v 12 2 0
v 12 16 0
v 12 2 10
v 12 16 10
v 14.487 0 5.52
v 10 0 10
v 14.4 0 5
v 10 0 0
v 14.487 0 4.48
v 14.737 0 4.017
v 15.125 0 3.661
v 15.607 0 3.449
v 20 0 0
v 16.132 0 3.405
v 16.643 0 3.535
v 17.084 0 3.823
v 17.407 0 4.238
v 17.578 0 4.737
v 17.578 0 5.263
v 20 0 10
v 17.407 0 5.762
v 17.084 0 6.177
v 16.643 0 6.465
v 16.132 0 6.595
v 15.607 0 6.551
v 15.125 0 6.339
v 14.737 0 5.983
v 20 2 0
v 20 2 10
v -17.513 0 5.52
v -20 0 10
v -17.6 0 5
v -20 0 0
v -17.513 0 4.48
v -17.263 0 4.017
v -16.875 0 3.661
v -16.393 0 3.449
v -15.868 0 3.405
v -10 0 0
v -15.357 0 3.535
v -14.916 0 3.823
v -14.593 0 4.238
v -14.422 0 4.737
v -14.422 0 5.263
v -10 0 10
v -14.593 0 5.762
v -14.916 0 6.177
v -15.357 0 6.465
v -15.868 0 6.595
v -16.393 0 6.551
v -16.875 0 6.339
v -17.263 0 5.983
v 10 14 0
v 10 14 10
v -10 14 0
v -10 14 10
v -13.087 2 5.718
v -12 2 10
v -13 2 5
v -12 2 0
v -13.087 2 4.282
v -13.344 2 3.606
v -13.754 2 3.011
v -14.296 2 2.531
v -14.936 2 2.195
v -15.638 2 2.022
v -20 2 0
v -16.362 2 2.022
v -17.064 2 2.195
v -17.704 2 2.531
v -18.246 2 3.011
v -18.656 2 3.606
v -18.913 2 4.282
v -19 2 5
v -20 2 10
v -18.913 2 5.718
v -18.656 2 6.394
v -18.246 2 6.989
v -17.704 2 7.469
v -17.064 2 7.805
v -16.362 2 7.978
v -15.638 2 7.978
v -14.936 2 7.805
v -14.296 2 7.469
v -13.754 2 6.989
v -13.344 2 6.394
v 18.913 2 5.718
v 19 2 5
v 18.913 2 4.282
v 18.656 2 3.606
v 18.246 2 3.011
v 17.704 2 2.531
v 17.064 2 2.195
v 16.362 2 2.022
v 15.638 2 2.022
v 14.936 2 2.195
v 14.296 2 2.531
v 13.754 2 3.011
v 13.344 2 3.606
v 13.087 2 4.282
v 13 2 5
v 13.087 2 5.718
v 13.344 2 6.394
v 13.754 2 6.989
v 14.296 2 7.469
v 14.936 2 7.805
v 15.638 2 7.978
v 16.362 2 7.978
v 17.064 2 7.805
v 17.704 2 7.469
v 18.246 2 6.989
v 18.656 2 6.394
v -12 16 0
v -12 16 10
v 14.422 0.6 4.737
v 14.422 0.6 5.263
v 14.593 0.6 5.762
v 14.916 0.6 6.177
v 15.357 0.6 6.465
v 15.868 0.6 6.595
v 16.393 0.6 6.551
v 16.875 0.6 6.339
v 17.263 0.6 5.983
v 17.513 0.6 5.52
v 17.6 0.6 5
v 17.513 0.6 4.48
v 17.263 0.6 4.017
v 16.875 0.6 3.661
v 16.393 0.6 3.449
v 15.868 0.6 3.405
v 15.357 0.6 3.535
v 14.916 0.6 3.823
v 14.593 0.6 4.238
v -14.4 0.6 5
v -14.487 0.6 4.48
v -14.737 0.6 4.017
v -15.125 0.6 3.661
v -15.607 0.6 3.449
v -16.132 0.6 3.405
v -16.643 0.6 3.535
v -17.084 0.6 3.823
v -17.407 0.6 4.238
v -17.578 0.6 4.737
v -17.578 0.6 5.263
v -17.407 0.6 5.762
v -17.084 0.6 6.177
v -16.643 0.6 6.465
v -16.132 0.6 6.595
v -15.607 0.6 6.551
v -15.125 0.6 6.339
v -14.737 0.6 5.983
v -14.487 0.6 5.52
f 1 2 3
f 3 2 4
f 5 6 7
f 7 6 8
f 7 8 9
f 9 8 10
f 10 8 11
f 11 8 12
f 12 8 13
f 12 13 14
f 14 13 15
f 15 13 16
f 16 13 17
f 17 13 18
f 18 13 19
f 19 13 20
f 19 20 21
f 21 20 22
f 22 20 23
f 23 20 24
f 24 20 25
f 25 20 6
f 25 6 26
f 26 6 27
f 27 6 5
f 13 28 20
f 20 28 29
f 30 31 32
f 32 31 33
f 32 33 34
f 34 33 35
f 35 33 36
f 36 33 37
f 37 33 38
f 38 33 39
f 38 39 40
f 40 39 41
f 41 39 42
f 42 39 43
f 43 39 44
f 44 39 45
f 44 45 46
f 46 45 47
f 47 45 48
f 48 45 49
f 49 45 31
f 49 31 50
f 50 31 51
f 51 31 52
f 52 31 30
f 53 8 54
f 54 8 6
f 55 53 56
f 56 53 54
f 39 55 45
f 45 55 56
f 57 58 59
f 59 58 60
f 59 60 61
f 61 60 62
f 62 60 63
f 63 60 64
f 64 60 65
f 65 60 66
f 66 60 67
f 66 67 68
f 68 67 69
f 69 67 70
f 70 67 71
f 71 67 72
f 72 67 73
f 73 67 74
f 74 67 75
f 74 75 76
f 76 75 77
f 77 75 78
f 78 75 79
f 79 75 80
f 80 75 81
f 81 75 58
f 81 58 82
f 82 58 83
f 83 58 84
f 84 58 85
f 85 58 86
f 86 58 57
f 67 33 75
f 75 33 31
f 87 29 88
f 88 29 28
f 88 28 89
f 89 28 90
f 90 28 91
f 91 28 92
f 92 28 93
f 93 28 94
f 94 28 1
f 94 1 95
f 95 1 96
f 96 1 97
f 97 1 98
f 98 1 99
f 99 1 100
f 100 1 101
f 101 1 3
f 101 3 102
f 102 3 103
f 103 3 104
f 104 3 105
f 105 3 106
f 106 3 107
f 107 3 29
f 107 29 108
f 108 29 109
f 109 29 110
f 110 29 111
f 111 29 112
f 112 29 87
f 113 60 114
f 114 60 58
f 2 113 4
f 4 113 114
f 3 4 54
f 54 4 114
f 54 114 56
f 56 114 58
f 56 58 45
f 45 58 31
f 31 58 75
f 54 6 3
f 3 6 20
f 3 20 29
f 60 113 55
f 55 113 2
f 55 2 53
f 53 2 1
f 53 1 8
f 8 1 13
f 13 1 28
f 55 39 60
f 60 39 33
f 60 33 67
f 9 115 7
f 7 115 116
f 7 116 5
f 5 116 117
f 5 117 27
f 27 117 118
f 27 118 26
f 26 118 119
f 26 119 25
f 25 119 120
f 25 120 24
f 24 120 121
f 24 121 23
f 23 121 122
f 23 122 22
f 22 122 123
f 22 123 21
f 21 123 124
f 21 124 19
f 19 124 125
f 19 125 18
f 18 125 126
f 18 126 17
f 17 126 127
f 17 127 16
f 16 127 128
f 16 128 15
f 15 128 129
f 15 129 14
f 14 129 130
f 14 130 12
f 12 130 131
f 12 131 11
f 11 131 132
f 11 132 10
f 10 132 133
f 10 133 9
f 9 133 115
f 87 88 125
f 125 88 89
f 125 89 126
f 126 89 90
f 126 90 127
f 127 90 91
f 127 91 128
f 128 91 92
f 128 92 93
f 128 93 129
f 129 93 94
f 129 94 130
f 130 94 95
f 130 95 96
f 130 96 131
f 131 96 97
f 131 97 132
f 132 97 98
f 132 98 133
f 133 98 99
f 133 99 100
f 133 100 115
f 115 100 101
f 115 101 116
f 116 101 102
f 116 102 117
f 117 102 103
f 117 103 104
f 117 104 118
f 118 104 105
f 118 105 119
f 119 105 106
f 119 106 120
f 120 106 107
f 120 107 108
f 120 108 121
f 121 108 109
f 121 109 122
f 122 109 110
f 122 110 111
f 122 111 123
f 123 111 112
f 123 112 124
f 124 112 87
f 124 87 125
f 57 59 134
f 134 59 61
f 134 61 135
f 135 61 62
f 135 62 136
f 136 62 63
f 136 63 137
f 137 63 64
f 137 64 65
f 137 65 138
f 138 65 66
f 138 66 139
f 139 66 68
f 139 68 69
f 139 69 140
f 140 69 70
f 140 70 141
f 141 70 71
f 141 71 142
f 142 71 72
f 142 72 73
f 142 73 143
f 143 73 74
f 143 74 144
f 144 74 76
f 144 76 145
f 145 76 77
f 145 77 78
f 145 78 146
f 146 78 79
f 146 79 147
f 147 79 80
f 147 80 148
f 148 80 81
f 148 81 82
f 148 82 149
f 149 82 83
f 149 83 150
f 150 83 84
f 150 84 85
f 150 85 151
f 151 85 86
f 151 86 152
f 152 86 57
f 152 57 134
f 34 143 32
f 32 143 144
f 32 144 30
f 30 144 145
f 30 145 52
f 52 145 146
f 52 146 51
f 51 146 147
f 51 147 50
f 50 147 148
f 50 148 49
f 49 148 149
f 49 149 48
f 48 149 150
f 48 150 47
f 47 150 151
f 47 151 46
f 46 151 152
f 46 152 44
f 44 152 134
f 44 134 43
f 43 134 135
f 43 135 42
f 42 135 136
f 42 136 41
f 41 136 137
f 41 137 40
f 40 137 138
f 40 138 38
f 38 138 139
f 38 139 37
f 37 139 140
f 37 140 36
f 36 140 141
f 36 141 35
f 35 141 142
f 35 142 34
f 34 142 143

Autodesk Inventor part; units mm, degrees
ref_plane "YZ Plane" through (0, 0, 0) normal (1, 0, 0) x (0, 1, 0)
ref_plane "XZ Plane" through (0, 0, 0) normal (0, 1, 0) x (-1, 0, 0)
ref_plane "XY Plane" through (0, 0, 0) normal (0, 0, 1) x (1, 0, 0)
sketch "Sketch1" plane through (0, 0, 0) normal (0, 0, 1) x (1, 0, 0)
  line L0 (-10, 0) -> (10, 0) construction
  line L1 (10, 0) -> (10, 14)
  line L2 (10, 14) -> (-10, 14)
  line L3 (-10, 14) -> (-10, 0)
  line L4 (-12, -8.7582) -> (12, -8.7582) construction
  line L5 (12, -8.7582) -> (12, 2) construction
  line L6 (12, 16) -> (-12, 16)
  line L7 (-12, 16) -> (-12, 2)
  line L8 (-10, 0) -> (-20, 0)
  line L9 (-20, 0) -> (-20, 2)
  line L10 (-20, 2) -> (-12, 2)
  line L11 (-12, 2) -> (-12, -8.7582) construction
  line L12 (0, 16) -> (0, -8.7582)
  line L13 (10, 0) -> (20, 0)
  line L14 (20, 0) -> (20, 2)
  line L15 (20, 2) -> (12, 2)
  line L16 (12, 2) -> (12, 16)
  point P0 (0, 0)
  point P1 (0, 0)
  dimension "d0" = 14
  dimension "d1" = 20
  dimension "d2" = 2
  dimension "d3" = 2
  dimension "d4" = 10
  dimension "d5" = 2
  dimension "d6" = 2
extrude "Extrusion1" add sketch "Sketch1" along normal blind 10
sketch "Sketch2" plane through (-20, 2, 0) normal (0, 1, 0) x (1, 0, 0)
  line L0 (8, 0) -> (0, 0) construction
  line L1 (0, 0) -> (0, -10) construction
  line L2 (8, -10) -> (0, -10) construction
  line L3 (8, 0) -> (8, -10) construction
  line L4 (40, 0) -> (32, 0) construction
  line L5 (32, 0) -> (32, -10) construction
  line L6 (40, -10) -> (32, -10) construction
  line L7 (40, 0) -> (40, -10) construction
  line L8 (8, -10) -> (0, 0) construction
  line L9 (0, -10) -> (8, 0) construction
  line L10 (40, -10) -> (32, 0) construction
  line L11 (32, -10) -> (40, 0) construction
  point P0 (20, 0)
  point P1 (4, -5)
  point P2 (36, -5)
hole "Hole1" at (-16, 2, 5) at (16, 2, 5) direction (0, -1, 0) diameter 3.2 end through all countersink diameter 6 countersink angle 90
properties part number "switchHolder"
